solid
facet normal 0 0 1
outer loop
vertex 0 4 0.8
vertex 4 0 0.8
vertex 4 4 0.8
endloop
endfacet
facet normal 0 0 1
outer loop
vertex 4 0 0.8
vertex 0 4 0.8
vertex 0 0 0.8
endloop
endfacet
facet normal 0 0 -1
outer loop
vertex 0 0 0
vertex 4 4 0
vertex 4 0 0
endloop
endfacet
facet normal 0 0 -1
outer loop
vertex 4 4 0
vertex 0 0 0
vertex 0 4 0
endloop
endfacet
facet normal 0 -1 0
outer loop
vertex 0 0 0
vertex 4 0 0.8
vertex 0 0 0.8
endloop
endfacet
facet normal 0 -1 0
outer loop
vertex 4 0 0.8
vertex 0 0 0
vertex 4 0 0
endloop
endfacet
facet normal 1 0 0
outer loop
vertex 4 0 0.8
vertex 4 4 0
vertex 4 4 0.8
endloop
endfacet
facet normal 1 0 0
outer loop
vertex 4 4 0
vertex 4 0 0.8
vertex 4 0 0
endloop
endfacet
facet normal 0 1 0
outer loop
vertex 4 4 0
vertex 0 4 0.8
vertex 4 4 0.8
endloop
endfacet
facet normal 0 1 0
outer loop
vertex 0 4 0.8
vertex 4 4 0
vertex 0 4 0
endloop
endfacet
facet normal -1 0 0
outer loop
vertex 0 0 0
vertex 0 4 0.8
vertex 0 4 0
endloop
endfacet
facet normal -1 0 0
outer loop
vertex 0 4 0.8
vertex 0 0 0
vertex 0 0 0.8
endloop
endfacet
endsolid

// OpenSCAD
/* Warning, this is a very basic generator with a lot of approximation 
input data : [WQFN, NXC, 4x4x0.8mm, 24, , A, C04-25490A]
generated by com.zoubworld.electronics.cad.model3d.Basic
Date : Sun Feb 15 10:50:49 CET 2026
*/

//body
color("black")
translate([0,0,0])
cube([4.0,4.0,0.8], center=false);
